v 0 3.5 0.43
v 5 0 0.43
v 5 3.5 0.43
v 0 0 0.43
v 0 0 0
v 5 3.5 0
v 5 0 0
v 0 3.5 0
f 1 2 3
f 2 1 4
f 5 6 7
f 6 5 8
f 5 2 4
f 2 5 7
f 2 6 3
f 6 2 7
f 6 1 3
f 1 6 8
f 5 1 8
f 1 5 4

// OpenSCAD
/* Warning, this is a very basic generator with a lot of approximation 
input data : [XSFN, 9TW, 5x3.5x0.43mm, 2, , A, C04-00689A]
generated by com.zoubworld.electronics.cad.model3d.Basic
Date : Sun Feb 15 10:50:49 CET 2026
*/

//body
color("black")
translate([0,0,0])
cube([5.0,3.5,0.43], center=false);
